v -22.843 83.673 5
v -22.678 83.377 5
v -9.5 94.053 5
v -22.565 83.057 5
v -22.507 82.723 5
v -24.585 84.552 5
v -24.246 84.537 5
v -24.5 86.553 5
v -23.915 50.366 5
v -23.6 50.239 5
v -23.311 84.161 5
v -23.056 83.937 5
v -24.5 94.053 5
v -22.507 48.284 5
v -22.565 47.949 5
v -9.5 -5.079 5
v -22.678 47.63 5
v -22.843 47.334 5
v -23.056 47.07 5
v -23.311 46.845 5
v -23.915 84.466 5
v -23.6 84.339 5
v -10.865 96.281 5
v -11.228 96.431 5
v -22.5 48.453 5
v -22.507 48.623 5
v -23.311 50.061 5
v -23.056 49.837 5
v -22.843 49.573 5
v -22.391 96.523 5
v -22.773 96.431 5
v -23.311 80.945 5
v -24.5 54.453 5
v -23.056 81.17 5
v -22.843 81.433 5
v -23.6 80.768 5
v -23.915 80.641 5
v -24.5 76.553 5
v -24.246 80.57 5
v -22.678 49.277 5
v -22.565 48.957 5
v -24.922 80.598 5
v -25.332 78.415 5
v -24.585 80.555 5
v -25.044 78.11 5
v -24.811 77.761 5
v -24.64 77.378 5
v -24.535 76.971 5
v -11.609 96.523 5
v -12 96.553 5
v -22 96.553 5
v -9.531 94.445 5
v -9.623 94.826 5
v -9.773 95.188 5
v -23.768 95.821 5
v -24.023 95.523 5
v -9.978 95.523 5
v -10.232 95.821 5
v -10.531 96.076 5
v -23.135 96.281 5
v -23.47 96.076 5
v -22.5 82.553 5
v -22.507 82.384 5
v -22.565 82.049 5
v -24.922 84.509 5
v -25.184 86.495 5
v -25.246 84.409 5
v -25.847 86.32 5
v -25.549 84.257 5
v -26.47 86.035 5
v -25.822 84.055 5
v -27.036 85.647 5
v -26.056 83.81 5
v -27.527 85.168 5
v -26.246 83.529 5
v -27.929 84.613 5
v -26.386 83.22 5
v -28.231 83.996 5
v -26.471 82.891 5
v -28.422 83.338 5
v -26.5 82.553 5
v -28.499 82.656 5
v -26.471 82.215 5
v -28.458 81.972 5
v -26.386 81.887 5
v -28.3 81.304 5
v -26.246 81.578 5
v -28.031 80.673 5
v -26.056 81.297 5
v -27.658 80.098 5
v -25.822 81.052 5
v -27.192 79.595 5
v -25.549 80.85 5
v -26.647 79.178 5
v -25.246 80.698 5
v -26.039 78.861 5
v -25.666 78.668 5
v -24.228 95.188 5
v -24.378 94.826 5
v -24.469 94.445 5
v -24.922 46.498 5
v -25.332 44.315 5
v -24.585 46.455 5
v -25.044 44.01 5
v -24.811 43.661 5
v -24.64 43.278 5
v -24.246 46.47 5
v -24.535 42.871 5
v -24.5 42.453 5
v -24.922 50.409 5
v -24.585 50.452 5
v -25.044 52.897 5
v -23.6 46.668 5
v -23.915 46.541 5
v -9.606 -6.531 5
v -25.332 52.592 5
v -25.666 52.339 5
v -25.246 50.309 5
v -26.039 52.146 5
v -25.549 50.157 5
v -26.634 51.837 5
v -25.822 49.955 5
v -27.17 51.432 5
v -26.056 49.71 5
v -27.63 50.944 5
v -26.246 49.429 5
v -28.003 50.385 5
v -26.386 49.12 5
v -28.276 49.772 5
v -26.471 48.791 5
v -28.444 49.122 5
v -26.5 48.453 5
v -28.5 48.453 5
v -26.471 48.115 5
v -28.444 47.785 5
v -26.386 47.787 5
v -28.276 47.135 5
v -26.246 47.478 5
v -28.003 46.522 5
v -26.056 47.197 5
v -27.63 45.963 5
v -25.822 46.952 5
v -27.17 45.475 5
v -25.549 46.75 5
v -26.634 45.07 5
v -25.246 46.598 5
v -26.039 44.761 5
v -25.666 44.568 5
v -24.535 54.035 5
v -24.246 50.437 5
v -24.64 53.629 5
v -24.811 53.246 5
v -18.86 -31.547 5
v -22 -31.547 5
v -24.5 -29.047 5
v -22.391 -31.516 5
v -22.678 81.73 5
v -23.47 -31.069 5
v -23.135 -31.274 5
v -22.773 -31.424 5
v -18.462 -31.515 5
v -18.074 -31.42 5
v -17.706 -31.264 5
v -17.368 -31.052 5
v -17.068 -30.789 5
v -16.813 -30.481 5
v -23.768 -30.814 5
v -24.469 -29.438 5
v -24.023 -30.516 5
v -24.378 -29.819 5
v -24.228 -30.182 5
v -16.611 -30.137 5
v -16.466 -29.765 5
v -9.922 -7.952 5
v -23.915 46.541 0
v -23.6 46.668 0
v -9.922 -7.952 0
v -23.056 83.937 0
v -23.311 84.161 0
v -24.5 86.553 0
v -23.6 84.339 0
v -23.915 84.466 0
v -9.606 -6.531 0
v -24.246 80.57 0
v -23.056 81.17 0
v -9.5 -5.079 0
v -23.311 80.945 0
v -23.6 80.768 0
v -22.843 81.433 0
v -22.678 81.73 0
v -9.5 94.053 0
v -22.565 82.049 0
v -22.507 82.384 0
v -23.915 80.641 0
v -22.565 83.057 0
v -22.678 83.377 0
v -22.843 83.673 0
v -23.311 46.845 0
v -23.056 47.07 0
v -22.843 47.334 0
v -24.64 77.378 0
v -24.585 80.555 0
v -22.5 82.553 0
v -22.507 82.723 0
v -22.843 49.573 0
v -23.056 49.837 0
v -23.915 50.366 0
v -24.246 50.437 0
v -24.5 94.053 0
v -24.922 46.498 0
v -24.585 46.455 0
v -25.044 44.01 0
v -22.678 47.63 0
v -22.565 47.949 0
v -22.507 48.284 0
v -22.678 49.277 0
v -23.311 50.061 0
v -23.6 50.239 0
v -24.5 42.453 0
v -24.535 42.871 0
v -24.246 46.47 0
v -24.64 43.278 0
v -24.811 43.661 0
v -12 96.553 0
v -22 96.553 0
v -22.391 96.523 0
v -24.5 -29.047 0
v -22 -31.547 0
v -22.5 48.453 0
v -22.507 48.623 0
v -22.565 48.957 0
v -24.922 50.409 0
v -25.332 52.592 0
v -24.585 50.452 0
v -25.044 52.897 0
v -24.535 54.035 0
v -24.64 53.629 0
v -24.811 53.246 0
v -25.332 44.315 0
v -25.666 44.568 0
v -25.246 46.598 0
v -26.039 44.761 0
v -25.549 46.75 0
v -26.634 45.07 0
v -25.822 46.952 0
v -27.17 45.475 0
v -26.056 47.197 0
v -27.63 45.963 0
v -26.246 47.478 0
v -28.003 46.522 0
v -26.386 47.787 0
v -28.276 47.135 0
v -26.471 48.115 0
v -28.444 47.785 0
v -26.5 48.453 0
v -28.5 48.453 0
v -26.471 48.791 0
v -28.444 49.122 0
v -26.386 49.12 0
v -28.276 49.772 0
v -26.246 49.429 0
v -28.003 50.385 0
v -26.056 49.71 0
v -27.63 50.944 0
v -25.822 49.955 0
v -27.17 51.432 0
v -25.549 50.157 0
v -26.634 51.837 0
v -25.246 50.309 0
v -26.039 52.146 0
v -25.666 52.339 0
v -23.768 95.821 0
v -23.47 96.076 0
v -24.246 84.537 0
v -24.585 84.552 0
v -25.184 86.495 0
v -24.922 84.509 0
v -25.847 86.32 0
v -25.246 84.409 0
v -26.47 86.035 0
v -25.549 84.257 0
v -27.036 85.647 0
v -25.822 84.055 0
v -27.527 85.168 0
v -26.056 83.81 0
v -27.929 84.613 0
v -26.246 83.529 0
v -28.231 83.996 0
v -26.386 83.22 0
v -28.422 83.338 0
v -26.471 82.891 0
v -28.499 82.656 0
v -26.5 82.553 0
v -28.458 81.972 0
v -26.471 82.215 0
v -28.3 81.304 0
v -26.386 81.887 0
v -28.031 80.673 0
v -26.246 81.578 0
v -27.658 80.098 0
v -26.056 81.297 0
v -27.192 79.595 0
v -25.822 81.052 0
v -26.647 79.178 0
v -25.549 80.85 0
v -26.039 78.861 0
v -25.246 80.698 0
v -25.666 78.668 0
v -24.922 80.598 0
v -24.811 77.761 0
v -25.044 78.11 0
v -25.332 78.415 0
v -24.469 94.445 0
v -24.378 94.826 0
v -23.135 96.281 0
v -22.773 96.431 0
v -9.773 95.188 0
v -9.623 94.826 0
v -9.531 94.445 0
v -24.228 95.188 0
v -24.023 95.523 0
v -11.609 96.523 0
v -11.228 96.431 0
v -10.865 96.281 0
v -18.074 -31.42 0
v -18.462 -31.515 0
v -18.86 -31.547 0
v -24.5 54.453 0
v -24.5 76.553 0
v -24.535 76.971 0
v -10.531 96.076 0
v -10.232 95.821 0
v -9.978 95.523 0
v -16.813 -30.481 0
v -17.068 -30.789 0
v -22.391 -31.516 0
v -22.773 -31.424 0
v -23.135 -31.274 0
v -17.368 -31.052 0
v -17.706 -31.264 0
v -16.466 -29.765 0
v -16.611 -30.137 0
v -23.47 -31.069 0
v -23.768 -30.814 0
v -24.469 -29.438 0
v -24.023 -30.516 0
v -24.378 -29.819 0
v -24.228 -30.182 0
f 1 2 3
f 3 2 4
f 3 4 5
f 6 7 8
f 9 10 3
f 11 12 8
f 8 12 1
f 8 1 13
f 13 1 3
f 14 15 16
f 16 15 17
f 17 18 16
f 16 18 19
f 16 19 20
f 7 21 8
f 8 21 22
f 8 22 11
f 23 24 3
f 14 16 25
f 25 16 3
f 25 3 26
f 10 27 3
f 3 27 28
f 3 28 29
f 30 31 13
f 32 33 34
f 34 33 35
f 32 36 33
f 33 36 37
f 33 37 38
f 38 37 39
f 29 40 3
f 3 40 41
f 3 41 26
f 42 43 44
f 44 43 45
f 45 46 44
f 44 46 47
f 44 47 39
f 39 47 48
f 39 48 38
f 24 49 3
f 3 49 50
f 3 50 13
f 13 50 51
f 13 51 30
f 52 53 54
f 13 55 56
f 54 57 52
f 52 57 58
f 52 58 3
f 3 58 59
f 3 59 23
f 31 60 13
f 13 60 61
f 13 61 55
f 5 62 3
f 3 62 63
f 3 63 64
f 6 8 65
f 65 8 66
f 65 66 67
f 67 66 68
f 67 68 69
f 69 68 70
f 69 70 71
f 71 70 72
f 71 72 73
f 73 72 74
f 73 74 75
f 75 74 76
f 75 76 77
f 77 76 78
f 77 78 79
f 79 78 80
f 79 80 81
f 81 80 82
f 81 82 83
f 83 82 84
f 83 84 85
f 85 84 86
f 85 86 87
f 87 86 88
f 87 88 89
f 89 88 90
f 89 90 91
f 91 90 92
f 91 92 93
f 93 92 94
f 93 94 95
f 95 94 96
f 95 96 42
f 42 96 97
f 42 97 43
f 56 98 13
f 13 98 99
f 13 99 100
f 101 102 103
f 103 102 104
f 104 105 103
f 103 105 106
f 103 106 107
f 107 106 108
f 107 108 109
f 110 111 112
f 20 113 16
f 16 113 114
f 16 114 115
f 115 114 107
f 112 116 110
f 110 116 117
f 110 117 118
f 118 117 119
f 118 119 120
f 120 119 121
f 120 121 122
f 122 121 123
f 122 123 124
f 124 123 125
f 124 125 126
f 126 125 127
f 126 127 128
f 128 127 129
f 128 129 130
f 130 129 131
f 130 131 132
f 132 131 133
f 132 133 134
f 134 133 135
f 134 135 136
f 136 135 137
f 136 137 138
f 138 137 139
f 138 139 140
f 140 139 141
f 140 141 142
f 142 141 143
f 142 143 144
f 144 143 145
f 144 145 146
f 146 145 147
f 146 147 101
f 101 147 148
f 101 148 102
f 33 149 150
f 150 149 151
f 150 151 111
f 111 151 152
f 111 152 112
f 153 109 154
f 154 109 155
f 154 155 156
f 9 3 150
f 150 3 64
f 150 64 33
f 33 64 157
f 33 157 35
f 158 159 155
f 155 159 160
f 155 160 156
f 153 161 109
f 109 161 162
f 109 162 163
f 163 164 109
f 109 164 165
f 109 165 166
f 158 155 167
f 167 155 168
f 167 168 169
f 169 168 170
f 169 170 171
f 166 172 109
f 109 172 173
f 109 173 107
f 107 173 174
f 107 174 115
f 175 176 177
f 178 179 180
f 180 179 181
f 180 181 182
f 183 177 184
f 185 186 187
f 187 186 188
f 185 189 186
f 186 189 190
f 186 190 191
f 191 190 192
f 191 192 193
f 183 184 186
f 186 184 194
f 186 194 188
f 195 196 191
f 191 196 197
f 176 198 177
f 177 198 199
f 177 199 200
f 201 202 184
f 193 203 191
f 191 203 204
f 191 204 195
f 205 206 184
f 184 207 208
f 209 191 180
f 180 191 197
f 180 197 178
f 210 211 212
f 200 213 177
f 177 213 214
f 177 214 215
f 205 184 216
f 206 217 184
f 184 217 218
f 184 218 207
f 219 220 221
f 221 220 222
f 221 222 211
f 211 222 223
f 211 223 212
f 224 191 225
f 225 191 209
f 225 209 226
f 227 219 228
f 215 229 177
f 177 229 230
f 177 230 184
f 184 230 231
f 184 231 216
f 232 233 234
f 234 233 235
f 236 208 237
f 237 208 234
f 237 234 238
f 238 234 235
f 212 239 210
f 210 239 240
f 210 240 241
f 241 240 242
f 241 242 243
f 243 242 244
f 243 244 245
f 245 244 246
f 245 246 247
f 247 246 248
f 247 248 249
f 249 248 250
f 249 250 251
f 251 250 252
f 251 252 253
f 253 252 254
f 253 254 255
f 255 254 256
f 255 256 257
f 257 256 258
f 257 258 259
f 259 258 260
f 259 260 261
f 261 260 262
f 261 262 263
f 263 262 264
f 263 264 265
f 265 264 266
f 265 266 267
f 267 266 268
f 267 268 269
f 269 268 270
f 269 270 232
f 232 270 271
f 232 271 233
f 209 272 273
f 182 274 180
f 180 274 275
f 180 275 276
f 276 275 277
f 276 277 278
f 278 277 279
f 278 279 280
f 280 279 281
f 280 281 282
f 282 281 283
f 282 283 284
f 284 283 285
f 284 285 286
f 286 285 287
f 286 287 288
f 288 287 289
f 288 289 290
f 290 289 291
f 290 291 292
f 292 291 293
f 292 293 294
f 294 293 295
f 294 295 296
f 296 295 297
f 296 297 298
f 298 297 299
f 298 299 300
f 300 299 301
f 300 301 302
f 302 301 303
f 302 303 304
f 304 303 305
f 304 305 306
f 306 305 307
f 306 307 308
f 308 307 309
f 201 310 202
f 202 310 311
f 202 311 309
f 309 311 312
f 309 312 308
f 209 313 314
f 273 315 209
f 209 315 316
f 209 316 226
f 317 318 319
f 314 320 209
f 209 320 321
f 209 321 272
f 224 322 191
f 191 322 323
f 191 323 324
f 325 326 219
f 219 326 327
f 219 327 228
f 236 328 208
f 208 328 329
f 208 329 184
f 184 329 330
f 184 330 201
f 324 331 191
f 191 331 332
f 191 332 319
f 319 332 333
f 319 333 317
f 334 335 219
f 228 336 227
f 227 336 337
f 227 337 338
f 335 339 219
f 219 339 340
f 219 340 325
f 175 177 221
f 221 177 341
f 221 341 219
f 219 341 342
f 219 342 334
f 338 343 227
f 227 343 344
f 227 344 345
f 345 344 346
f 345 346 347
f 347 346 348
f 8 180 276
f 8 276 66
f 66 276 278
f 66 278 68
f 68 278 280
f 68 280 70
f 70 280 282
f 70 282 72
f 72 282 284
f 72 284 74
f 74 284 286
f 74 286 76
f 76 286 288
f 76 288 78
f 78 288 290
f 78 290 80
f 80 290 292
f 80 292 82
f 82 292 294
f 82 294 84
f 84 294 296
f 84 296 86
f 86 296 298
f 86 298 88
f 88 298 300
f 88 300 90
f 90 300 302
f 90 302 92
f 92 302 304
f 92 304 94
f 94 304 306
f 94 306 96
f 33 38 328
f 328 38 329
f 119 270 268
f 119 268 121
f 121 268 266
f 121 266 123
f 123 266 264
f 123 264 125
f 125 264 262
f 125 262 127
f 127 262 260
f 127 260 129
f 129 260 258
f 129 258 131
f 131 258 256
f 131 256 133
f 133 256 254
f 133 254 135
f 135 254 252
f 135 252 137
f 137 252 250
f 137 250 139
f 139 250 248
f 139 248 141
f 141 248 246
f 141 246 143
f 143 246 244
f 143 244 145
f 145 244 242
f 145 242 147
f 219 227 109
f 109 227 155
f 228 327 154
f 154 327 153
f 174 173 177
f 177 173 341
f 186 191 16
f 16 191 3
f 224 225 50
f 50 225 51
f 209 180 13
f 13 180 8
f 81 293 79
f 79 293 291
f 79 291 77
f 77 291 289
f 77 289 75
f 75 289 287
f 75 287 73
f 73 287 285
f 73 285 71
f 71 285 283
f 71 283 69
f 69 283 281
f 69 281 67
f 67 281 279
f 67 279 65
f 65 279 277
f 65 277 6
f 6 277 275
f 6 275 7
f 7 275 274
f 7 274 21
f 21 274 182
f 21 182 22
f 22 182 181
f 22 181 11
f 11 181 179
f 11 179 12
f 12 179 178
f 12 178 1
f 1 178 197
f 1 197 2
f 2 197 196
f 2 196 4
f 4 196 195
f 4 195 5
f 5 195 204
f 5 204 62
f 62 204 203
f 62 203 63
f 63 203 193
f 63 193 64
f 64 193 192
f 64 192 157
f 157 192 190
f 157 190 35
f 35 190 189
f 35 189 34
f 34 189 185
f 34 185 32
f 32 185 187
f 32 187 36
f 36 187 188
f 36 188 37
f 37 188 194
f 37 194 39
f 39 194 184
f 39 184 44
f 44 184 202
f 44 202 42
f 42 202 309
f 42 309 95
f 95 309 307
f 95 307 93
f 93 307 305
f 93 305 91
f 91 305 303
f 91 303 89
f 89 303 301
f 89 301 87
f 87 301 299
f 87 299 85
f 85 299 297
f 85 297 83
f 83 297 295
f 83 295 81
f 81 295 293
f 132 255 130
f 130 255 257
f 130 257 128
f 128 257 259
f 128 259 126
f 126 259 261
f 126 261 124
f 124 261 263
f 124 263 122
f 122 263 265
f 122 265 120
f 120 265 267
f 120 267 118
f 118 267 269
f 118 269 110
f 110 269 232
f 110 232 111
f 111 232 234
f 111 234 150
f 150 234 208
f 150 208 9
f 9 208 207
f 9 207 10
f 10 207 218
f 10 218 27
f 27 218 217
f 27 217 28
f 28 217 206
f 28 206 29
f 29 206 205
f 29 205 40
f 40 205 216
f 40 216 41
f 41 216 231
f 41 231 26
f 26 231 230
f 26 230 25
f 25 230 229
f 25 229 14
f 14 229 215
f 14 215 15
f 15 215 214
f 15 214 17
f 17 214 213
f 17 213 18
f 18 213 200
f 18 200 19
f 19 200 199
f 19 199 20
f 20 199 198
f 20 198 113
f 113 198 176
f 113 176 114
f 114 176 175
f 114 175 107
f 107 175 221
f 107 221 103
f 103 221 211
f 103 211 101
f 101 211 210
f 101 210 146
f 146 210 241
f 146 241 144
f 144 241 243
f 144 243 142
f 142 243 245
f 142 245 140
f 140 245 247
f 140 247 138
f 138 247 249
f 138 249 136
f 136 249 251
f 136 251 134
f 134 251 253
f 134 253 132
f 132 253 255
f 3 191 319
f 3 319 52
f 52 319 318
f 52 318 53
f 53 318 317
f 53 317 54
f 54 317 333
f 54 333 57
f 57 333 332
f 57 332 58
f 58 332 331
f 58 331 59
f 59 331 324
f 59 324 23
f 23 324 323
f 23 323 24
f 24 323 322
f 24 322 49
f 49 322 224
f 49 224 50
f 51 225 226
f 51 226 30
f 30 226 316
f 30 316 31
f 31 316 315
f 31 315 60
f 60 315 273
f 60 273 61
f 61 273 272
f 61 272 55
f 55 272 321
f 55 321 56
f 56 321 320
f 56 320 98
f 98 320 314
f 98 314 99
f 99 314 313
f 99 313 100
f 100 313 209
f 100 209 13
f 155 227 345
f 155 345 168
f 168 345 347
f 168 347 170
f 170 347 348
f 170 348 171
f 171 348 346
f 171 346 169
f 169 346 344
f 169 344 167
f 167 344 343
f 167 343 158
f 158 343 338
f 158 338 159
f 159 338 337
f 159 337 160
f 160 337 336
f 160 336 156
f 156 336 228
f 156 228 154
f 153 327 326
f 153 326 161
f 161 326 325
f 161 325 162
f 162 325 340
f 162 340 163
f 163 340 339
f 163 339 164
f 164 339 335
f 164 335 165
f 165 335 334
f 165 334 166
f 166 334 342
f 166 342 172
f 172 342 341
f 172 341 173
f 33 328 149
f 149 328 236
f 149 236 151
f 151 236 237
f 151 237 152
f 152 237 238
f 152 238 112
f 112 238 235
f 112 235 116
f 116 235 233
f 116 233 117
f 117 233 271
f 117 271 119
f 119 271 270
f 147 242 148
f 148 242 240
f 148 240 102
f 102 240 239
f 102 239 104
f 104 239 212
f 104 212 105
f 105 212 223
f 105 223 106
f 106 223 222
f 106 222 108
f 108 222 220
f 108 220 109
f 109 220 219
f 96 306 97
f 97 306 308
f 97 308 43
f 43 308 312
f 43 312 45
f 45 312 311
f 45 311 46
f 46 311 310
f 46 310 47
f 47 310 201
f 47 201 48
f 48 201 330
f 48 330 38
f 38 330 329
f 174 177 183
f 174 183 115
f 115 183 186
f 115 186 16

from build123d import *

# Parameters (mm, degrees)
SKETCH_1_R      = 2
EXTRUDE_1_DEPTH = 5
FILLET_1_R      = 2.5
FILLET_2_R      = 2.5
FILLET_3_R      = 10


with BuildPart() as part:
    # 草圖1 → 填料-伸長1 (new body)
    with BuildSketch(Plane.XY):
        with BuildLine():
            Line((-17.000169764, -31.546546547), (-9.500169764, -6.546546547))
            Line((-9.500169764, -6.546546547), (-9.500169764, 96.553453453))
            Line((-9.500169764, 96.553453453), (-24.500169764, 96.553453453))
            Line((-24.500169764, 96.553453453), (-24.500169764, 86.553453453))
            ThreePointArc((-24.500169764, 86.553453453), (-28.500169764, 82.553453453), (-24.500169764, 78.553453453))
            Line((-24.500169764, 78.553453453), (-24.500169764, 52.453453453))
            ThreePointArc((-24.500169764, 52.453453453), (-28.500169764, 48.453453453), (-24.500169764, 44.453453453))
            Line((-24.500169764, 44.453453453), (-24.500169764, -31.546546547))
            Line((-24.500169764, -31.546546547), (-17.000169764, -31.546546547))
        make_face()
        with Locations((-24.500169764, 82.553453453)):
            Circle(SKETCH_1_R, mode=Mode.SUBTRACT)
        with Locations((-24.500169764, 48.453453453)):
            Circle(SKETCH_1_R, mode=Mode.SUBTRACT)
    extrude(amount=EXTRUDE_1_DEPTH)

    # 圓角1
    fillet_1_edges = [part.edges().sort_by_distance(p)[0] for p in [
        (-24.500169764, 96.553453453, 2.5),
        (-9.500169764, 96.553453453, 2.5),
        (-17.000169764, -31.546546547, 2.5),
        (-24.500169764, -31.546546547, 2.5),
    ]]
    fillet(fillet_1_edges, radius=FILLET_1_R)

    # 圓角2
    fillet_2_edges = [part.edges().sort_by_distance(p)[0] for p in [
        (-24.500169764, 44.453453453, 2.5),
        (-24.500169764, 52.453453453, 2.5),
        (-24.500169764, 78.553453453, 2.5),
    ]]
    fillet(fillet_2_edges, radius=FILLET_2_R)

    # 圓角3
    fillet_3_edges = [part.edges().sort_by_distance(p)[0] for p in [
        (-9.500169764, -6.546546547, 2.5),
    ]]
    fillet(fillet_3_edges, radius=FILLET_3_R)


solid = part.part
